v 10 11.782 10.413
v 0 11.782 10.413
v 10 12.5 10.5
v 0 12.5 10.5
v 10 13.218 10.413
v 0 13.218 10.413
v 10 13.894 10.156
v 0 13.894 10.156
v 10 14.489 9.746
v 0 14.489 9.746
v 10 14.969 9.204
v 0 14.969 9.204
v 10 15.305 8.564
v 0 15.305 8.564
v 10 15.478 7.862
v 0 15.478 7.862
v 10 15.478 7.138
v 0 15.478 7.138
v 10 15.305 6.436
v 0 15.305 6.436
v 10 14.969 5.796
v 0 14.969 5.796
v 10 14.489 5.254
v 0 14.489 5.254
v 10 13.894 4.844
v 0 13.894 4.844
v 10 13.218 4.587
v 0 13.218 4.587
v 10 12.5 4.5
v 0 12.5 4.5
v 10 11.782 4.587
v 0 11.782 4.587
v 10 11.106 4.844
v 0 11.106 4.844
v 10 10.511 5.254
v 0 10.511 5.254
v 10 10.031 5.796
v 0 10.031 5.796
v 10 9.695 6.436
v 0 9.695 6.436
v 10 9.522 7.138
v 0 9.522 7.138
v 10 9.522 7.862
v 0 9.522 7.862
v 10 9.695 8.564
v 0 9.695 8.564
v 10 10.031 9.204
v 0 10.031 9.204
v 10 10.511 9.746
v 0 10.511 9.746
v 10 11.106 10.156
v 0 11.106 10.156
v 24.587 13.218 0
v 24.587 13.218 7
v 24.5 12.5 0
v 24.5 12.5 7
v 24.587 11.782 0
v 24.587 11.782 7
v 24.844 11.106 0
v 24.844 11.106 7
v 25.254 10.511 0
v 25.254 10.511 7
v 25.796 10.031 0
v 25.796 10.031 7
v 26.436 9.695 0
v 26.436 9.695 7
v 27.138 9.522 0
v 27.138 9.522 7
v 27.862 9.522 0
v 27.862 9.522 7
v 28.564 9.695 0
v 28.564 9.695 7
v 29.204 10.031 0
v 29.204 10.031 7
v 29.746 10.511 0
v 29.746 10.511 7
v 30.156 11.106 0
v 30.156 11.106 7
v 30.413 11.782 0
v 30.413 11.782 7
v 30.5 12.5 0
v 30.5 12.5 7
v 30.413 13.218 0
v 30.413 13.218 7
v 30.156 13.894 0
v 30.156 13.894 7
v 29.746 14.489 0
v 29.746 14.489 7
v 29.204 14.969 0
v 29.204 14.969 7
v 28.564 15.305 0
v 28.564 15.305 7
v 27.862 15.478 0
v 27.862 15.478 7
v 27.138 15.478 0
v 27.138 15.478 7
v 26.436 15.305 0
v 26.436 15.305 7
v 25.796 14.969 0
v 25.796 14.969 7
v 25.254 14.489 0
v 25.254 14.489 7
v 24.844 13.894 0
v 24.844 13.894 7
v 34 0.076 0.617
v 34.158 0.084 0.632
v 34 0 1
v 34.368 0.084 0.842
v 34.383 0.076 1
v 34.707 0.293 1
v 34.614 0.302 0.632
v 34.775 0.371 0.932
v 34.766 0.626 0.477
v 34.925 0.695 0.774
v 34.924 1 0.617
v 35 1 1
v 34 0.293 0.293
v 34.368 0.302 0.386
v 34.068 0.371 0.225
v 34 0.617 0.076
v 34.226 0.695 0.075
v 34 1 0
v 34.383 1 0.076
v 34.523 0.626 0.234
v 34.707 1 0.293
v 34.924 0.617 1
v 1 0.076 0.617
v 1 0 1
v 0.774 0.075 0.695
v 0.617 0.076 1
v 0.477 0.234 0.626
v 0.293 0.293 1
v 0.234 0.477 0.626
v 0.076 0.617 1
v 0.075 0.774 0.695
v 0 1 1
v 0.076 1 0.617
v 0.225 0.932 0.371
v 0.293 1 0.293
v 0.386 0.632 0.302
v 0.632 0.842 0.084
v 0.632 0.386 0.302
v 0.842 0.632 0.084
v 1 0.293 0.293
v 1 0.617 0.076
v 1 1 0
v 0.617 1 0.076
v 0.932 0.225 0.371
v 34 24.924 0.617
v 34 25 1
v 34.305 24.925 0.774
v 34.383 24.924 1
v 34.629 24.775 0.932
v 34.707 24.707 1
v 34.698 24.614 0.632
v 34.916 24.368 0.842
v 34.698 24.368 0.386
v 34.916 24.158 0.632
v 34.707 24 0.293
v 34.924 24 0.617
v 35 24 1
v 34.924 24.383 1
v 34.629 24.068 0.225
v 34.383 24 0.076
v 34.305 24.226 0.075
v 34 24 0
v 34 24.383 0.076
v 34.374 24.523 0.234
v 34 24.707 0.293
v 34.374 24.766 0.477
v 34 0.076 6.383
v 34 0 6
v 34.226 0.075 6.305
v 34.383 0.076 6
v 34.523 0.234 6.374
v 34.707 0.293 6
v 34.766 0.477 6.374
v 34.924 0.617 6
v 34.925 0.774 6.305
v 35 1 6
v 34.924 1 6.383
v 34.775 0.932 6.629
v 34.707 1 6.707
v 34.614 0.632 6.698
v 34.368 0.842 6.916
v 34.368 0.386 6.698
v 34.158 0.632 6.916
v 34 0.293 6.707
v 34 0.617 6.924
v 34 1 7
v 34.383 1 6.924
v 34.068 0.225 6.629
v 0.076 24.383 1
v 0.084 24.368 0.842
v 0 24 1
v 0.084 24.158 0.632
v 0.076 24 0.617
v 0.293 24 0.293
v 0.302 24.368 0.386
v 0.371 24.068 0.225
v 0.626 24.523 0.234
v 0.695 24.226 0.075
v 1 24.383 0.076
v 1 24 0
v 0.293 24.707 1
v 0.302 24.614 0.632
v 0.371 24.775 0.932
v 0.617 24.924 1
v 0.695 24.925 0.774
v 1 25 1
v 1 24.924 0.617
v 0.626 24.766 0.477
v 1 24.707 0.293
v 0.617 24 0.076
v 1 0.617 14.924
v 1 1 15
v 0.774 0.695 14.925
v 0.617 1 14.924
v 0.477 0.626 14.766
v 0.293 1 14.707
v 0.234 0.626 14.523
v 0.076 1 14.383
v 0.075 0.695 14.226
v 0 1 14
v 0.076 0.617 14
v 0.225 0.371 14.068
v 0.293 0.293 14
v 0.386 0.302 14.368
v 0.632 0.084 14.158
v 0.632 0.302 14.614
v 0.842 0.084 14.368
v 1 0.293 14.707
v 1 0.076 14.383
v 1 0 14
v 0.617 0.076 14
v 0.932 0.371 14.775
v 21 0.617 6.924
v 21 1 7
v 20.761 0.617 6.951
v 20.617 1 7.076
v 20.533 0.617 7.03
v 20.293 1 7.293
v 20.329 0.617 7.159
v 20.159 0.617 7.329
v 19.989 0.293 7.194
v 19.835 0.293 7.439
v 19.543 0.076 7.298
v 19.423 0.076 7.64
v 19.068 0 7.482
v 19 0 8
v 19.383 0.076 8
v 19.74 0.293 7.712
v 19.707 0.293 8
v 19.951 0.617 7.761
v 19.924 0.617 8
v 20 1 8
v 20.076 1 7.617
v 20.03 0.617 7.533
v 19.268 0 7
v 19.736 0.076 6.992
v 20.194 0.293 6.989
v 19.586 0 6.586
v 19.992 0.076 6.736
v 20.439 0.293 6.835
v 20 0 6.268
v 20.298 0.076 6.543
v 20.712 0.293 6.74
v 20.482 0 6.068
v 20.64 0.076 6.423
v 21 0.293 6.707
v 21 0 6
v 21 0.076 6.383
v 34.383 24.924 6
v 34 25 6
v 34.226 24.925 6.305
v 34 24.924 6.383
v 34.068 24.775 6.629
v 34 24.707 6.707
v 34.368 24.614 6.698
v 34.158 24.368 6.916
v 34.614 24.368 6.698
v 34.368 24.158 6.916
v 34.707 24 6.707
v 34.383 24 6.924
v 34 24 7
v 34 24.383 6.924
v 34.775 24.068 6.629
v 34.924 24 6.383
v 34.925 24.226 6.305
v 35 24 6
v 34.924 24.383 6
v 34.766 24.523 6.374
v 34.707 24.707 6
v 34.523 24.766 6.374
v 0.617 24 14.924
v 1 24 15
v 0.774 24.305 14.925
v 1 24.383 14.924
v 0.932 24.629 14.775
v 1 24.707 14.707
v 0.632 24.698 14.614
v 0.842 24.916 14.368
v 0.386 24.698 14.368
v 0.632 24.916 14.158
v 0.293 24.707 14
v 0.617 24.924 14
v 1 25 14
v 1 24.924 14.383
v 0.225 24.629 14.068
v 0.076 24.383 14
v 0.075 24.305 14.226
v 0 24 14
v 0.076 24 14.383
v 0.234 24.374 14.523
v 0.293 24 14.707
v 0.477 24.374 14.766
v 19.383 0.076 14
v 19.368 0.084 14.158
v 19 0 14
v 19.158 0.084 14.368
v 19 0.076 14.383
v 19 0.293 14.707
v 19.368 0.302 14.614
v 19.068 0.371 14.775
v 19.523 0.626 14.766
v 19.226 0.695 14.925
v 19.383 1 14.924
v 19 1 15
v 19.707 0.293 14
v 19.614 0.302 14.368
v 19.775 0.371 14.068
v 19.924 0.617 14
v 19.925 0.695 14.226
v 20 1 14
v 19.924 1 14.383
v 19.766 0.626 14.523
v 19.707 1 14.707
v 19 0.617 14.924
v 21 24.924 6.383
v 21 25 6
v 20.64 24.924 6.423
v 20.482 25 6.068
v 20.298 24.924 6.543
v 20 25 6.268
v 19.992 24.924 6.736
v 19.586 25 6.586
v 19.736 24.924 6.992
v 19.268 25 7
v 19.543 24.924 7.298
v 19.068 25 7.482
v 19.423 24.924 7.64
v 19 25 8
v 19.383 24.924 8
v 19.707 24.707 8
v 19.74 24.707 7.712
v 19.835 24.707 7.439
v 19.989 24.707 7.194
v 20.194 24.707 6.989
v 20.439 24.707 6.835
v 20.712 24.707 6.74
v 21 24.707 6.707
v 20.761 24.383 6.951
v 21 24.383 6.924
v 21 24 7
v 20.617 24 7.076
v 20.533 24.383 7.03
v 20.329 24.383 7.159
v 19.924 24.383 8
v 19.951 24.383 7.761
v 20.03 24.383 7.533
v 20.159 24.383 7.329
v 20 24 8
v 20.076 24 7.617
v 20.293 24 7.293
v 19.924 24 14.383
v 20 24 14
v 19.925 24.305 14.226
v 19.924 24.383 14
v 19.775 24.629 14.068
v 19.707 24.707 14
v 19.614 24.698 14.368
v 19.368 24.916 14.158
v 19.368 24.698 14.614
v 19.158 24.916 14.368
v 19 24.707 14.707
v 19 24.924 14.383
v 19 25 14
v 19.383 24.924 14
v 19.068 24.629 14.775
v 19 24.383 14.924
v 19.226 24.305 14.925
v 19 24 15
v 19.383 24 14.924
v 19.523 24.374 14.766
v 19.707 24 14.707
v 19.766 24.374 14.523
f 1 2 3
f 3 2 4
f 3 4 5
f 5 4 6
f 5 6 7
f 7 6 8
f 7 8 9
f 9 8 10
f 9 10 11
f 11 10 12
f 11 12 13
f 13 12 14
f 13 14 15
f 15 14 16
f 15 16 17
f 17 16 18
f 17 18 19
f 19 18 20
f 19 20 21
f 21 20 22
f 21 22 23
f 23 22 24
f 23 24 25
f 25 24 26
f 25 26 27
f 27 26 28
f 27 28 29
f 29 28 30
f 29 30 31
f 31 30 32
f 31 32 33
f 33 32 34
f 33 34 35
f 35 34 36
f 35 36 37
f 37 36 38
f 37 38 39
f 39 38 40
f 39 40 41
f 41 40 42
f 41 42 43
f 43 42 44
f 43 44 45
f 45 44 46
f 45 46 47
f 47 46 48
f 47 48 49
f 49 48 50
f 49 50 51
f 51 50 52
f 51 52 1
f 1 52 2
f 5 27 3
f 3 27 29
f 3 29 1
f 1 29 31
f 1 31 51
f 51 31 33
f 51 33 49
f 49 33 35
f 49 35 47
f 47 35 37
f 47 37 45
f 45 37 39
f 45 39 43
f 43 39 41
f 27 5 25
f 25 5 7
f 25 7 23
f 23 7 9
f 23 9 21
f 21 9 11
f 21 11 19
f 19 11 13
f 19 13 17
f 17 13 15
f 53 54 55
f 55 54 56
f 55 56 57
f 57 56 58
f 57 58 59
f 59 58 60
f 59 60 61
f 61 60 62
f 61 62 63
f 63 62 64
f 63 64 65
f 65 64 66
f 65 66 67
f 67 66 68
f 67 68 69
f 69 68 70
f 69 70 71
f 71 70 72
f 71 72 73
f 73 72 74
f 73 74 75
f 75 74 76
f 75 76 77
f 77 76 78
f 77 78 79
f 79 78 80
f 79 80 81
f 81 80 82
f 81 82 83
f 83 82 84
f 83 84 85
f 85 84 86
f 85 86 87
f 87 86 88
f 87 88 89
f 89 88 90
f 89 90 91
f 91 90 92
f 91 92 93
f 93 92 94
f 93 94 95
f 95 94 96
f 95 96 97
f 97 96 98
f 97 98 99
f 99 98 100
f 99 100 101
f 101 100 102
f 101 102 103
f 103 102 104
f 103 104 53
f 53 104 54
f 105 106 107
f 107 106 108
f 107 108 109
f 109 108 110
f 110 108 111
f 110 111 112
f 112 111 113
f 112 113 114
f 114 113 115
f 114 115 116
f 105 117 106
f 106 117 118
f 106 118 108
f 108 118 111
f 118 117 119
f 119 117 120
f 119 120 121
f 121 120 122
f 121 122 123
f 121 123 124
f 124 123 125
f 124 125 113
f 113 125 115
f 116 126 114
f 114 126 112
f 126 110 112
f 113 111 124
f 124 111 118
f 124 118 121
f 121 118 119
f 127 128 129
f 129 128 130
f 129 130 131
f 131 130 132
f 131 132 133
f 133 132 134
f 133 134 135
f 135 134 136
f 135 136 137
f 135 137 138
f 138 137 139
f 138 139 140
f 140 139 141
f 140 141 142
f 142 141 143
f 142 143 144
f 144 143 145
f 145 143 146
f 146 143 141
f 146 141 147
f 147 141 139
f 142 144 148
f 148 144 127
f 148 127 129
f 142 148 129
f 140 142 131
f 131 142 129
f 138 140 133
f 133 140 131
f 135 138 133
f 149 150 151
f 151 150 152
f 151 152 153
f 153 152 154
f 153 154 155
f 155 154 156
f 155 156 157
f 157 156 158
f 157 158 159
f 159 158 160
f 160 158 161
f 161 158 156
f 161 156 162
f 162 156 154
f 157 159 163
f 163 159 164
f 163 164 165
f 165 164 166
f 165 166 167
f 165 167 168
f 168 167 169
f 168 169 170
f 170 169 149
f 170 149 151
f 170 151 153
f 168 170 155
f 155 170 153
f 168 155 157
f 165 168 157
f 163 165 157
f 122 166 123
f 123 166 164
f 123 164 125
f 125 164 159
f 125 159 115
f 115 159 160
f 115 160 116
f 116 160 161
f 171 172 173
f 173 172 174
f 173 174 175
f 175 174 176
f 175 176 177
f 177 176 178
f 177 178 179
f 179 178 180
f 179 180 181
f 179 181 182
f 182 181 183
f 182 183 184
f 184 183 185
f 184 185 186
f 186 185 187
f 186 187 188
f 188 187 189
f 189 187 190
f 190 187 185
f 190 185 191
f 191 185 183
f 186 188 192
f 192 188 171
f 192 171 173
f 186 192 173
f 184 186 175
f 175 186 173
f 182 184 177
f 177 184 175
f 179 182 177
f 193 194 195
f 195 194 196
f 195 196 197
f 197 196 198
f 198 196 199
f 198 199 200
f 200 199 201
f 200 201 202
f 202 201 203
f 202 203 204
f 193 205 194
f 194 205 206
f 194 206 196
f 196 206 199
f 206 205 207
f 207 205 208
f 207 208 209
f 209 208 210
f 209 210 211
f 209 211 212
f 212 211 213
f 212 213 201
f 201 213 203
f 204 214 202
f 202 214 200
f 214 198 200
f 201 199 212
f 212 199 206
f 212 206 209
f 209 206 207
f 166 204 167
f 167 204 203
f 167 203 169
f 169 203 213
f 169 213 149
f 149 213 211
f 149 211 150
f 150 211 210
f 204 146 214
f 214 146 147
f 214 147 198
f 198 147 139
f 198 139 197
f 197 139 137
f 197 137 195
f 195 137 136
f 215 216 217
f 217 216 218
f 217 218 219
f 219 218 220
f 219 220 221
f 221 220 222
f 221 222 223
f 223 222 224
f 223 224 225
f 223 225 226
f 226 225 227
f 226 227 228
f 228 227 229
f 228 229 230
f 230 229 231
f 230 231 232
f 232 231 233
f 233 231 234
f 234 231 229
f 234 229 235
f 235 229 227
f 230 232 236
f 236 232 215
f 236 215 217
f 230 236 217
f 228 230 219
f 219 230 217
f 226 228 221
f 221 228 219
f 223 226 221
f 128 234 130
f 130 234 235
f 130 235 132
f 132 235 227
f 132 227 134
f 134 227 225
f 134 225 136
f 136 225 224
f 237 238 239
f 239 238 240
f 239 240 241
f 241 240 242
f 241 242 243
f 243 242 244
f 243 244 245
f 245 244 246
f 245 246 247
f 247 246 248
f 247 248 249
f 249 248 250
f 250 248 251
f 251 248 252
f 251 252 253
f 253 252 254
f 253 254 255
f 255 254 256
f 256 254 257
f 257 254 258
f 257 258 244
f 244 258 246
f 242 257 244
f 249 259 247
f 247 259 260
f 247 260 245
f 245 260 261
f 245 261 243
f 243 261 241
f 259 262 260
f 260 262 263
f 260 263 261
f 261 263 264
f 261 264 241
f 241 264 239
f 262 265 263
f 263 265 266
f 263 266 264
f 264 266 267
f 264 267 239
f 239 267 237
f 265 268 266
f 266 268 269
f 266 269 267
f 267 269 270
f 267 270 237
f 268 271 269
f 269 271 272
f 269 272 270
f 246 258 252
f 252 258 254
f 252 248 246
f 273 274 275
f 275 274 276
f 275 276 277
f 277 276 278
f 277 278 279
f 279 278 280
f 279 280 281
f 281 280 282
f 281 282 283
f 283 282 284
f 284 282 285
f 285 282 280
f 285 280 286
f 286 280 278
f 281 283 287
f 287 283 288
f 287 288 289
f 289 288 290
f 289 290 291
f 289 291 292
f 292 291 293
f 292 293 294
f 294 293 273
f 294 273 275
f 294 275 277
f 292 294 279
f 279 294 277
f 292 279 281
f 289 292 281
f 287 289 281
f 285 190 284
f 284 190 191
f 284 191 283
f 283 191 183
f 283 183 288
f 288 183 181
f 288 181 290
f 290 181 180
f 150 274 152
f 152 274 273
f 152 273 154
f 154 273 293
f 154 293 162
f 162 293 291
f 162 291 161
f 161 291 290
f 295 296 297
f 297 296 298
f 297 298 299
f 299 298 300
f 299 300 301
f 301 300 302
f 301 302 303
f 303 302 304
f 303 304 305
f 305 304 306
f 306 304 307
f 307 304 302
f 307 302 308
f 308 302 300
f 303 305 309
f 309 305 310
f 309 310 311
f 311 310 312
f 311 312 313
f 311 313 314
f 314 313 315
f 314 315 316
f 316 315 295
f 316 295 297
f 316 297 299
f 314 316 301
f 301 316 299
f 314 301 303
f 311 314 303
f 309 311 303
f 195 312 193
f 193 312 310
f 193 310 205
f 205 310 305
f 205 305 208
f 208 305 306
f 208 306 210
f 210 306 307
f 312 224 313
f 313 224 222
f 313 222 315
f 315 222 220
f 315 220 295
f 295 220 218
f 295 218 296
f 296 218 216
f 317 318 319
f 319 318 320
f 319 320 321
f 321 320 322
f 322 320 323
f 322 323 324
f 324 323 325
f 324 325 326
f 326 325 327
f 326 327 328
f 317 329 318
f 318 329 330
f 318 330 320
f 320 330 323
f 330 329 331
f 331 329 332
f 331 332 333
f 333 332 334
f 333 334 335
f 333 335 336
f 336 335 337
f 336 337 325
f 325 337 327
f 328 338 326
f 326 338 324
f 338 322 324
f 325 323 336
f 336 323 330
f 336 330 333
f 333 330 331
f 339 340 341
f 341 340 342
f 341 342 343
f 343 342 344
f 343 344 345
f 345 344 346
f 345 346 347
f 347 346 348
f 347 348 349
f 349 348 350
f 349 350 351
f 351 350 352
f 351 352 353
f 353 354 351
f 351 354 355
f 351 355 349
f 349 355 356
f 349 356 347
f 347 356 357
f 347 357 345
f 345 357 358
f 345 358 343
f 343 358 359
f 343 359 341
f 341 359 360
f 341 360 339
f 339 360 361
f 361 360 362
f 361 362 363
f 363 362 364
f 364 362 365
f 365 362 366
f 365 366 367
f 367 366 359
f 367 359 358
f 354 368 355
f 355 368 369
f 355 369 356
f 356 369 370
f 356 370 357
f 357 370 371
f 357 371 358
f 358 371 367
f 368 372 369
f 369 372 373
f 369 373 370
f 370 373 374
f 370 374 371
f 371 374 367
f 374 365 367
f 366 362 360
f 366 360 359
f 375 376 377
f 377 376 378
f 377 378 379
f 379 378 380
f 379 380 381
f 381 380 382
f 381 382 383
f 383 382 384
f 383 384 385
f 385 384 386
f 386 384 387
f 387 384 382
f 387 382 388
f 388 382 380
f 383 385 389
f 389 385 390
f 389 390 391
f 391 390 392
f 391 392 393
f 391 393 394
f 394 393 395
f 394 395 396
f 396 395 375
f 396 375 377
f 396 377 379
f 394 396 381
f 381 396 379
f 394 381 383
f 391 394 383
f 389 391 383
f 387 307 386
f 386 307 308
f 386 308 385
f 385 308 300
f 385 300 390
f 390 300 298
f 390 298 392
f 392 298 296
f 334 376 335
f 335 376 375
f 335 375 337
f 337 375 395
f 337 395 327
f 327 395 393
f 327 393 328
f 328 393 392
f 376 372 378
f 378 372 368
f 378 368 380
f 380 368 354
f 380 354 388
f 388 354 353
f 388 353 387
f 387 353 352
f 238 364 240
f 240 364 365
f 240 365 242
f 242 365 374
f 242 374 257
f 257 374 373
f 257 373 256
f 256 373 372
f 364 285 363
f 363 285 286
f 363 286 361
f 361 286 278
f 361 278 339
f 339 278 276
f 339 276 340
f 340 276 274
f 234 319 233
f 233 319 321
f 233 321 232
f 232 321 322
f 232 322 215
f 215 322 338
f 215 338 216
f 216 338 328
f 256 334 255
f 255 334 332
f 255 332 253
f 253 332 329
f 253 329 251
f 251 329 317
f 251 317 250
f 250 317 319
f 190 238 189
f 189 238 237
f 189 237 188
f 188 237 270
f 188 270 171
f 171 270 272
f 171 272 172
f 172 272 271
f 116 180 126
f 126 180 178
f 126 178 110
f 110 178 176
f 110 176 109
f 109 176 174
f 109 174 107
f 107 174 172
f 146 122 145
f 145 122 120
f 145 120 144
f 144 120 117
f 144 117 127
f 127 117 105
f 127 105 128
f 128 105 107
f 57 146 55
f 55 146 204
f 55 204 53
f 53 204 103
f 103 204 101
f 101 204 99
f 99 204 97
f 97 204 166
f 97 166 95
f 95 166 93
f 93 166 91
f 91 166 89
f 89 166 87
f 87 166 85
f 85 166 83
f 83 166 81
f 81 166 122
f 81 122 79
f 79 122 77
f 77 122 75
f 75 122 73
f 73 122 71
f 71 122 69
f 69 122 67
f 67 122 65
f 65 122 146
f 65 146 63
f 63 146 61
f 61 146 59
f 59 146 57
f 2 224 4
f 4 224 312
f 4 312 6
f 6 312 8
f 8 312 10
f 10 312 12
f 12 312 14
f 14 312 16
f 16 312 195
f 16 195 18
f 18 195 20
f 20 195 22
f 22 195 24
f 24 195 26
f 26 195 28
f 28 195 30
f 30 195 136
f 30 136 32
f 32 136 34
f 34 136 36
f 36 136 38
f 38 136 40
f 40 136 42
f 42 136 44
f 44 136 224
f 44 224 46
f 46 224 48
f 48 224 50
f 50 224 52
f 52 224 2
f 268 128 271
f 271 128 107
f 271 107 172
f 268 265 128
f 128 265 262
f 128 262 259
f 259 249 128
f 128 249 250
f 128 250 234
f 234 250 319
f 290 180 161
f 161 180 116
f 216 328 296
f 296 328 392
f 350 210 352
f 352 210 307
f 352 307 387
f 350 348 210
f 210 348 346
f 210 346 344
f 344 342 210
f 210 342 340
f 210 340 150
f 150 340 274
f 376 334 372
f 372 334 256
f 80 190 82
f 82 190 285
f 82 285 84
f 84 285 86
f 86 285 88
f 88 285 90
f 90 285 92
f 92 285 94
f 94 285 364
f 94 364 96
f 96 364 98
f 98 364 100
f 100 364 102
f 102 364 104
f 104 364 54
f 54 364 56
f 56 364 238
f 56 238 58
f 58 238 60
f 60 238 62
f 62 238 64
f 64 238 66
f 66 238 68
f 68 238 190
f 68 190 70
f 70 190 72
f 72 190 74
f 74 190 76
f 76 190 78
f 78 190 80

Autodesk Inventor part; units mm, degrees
ref_plane "YZ Plane" through (0, 0, 0) normal (1, 0, 0) x (0, 1, 0)
ref_plane "XZ Plane" through (0, 0, 0) normal (0, 1, 0) x (-1, 0, 0)
ref_plane "XY Plane" through (0, 0, 0) normal (0, 0, 1) x (1, 0, 0)
sketch "Boceto1" plane through (0, 0, 0) normal (0, 0, 1) x (1, 0, 0)
  line L0 (0, 0) -> (35, 0)
  line L1 (35, 0) -> (35, 25)
  line L2 (35, 25) -> (0, 25)
  line L3 (0, 25) -> (0, 0)
  dimension "d0" = 35
  dimension "d1" = 25
extrude "Extrusión1" add sketch "Boceto1" along normal blind 15
sketch "Boceto2" plane through (0, 0, 15) normal (0, 0, 1) x (1, 0, 0)
  line L0 (35, 0) -> (35, 25) projected
  line L1 (35, 25) -> (0, 25) projected
  line L2 (35, 0) -> (20, 0)
  line L3 (20, 0) -> (20, 25)
  line L4 (20, 25) -> (35, 25)
  line L5 (35, 25) -> (35, 0)
  point P0 (0, 0)
  dimension "d4" = 15
extrude "Extrusión2" cut sketch "Boceto2" against normal blind 8
fillet "Empalme1" radius 1 18 edges at (20, 25, 11) (20, 12.5, 15) (27.5, 25, 7) (20, 12.5, 7) (35, 12.5, 7) (35, 25, 3.5) (35, 12.5, 0) (17.5, 25, 0) (10, 25, 15) (0, 25, 7.5) (0, 12.5, 15) (10, 0, 15) (20, 0, 11) (27.5, 0, 7) (35, 0, 3.5) (17.5, 0, 0) (0, 0, 7.5) (0, 12.5, 0)
sketch "Boceto3" plane through (0, 0, 7) normal (0, 0, 1) x (1, 0, 0)
  point P0 (0, 0)
sketch "Boceto4" plane through (0, 0, 7) normal (0, 0, 1) x (1, 0, 0)
  line L0 (21, 24) -> (34, 24) projected
  line L1 (27.5, 24) -> (27.5, 12.5)
  line L2 (27.5, 12.5) -> (34, 12.5)
  circle A0 centre (27.5, 12.5) radius 3
  point P0 (0, 0)
  dimension "d8" = 11.5
  dimension "d9" = 6
sketch "Boceto5" plane through (0, 0, 7) normal (0, 0, 1) x (1, 0, 0)
  point P0 (0, 0)
extrude "Extrusión3" cut sketch "Boceto4" against normal blind 8
sketch "Boceto6" plane through (0, 1, 1) normal (-1, 0, 0) x (0, 0, 1)
  line L0 (13, 0) -> (13, 23) projected
  line L1 (13, 11.5) -> (6.5, 11.5)
  circle A0 centre (6.5, 11.5) radius 3
  point P0 (-1, -1)
  dimension "d12" = 6.5
  dimension "d13" = 6
extrude "Extrusión4" cut sketch "Boceto6" against normal blind 10
sketch "Boceto7" plane through (0, 1, 1) normal (-1, 0, 0) x (0, 0, 1)
  point P0 (-1, -1)
properties part number "Holder"
